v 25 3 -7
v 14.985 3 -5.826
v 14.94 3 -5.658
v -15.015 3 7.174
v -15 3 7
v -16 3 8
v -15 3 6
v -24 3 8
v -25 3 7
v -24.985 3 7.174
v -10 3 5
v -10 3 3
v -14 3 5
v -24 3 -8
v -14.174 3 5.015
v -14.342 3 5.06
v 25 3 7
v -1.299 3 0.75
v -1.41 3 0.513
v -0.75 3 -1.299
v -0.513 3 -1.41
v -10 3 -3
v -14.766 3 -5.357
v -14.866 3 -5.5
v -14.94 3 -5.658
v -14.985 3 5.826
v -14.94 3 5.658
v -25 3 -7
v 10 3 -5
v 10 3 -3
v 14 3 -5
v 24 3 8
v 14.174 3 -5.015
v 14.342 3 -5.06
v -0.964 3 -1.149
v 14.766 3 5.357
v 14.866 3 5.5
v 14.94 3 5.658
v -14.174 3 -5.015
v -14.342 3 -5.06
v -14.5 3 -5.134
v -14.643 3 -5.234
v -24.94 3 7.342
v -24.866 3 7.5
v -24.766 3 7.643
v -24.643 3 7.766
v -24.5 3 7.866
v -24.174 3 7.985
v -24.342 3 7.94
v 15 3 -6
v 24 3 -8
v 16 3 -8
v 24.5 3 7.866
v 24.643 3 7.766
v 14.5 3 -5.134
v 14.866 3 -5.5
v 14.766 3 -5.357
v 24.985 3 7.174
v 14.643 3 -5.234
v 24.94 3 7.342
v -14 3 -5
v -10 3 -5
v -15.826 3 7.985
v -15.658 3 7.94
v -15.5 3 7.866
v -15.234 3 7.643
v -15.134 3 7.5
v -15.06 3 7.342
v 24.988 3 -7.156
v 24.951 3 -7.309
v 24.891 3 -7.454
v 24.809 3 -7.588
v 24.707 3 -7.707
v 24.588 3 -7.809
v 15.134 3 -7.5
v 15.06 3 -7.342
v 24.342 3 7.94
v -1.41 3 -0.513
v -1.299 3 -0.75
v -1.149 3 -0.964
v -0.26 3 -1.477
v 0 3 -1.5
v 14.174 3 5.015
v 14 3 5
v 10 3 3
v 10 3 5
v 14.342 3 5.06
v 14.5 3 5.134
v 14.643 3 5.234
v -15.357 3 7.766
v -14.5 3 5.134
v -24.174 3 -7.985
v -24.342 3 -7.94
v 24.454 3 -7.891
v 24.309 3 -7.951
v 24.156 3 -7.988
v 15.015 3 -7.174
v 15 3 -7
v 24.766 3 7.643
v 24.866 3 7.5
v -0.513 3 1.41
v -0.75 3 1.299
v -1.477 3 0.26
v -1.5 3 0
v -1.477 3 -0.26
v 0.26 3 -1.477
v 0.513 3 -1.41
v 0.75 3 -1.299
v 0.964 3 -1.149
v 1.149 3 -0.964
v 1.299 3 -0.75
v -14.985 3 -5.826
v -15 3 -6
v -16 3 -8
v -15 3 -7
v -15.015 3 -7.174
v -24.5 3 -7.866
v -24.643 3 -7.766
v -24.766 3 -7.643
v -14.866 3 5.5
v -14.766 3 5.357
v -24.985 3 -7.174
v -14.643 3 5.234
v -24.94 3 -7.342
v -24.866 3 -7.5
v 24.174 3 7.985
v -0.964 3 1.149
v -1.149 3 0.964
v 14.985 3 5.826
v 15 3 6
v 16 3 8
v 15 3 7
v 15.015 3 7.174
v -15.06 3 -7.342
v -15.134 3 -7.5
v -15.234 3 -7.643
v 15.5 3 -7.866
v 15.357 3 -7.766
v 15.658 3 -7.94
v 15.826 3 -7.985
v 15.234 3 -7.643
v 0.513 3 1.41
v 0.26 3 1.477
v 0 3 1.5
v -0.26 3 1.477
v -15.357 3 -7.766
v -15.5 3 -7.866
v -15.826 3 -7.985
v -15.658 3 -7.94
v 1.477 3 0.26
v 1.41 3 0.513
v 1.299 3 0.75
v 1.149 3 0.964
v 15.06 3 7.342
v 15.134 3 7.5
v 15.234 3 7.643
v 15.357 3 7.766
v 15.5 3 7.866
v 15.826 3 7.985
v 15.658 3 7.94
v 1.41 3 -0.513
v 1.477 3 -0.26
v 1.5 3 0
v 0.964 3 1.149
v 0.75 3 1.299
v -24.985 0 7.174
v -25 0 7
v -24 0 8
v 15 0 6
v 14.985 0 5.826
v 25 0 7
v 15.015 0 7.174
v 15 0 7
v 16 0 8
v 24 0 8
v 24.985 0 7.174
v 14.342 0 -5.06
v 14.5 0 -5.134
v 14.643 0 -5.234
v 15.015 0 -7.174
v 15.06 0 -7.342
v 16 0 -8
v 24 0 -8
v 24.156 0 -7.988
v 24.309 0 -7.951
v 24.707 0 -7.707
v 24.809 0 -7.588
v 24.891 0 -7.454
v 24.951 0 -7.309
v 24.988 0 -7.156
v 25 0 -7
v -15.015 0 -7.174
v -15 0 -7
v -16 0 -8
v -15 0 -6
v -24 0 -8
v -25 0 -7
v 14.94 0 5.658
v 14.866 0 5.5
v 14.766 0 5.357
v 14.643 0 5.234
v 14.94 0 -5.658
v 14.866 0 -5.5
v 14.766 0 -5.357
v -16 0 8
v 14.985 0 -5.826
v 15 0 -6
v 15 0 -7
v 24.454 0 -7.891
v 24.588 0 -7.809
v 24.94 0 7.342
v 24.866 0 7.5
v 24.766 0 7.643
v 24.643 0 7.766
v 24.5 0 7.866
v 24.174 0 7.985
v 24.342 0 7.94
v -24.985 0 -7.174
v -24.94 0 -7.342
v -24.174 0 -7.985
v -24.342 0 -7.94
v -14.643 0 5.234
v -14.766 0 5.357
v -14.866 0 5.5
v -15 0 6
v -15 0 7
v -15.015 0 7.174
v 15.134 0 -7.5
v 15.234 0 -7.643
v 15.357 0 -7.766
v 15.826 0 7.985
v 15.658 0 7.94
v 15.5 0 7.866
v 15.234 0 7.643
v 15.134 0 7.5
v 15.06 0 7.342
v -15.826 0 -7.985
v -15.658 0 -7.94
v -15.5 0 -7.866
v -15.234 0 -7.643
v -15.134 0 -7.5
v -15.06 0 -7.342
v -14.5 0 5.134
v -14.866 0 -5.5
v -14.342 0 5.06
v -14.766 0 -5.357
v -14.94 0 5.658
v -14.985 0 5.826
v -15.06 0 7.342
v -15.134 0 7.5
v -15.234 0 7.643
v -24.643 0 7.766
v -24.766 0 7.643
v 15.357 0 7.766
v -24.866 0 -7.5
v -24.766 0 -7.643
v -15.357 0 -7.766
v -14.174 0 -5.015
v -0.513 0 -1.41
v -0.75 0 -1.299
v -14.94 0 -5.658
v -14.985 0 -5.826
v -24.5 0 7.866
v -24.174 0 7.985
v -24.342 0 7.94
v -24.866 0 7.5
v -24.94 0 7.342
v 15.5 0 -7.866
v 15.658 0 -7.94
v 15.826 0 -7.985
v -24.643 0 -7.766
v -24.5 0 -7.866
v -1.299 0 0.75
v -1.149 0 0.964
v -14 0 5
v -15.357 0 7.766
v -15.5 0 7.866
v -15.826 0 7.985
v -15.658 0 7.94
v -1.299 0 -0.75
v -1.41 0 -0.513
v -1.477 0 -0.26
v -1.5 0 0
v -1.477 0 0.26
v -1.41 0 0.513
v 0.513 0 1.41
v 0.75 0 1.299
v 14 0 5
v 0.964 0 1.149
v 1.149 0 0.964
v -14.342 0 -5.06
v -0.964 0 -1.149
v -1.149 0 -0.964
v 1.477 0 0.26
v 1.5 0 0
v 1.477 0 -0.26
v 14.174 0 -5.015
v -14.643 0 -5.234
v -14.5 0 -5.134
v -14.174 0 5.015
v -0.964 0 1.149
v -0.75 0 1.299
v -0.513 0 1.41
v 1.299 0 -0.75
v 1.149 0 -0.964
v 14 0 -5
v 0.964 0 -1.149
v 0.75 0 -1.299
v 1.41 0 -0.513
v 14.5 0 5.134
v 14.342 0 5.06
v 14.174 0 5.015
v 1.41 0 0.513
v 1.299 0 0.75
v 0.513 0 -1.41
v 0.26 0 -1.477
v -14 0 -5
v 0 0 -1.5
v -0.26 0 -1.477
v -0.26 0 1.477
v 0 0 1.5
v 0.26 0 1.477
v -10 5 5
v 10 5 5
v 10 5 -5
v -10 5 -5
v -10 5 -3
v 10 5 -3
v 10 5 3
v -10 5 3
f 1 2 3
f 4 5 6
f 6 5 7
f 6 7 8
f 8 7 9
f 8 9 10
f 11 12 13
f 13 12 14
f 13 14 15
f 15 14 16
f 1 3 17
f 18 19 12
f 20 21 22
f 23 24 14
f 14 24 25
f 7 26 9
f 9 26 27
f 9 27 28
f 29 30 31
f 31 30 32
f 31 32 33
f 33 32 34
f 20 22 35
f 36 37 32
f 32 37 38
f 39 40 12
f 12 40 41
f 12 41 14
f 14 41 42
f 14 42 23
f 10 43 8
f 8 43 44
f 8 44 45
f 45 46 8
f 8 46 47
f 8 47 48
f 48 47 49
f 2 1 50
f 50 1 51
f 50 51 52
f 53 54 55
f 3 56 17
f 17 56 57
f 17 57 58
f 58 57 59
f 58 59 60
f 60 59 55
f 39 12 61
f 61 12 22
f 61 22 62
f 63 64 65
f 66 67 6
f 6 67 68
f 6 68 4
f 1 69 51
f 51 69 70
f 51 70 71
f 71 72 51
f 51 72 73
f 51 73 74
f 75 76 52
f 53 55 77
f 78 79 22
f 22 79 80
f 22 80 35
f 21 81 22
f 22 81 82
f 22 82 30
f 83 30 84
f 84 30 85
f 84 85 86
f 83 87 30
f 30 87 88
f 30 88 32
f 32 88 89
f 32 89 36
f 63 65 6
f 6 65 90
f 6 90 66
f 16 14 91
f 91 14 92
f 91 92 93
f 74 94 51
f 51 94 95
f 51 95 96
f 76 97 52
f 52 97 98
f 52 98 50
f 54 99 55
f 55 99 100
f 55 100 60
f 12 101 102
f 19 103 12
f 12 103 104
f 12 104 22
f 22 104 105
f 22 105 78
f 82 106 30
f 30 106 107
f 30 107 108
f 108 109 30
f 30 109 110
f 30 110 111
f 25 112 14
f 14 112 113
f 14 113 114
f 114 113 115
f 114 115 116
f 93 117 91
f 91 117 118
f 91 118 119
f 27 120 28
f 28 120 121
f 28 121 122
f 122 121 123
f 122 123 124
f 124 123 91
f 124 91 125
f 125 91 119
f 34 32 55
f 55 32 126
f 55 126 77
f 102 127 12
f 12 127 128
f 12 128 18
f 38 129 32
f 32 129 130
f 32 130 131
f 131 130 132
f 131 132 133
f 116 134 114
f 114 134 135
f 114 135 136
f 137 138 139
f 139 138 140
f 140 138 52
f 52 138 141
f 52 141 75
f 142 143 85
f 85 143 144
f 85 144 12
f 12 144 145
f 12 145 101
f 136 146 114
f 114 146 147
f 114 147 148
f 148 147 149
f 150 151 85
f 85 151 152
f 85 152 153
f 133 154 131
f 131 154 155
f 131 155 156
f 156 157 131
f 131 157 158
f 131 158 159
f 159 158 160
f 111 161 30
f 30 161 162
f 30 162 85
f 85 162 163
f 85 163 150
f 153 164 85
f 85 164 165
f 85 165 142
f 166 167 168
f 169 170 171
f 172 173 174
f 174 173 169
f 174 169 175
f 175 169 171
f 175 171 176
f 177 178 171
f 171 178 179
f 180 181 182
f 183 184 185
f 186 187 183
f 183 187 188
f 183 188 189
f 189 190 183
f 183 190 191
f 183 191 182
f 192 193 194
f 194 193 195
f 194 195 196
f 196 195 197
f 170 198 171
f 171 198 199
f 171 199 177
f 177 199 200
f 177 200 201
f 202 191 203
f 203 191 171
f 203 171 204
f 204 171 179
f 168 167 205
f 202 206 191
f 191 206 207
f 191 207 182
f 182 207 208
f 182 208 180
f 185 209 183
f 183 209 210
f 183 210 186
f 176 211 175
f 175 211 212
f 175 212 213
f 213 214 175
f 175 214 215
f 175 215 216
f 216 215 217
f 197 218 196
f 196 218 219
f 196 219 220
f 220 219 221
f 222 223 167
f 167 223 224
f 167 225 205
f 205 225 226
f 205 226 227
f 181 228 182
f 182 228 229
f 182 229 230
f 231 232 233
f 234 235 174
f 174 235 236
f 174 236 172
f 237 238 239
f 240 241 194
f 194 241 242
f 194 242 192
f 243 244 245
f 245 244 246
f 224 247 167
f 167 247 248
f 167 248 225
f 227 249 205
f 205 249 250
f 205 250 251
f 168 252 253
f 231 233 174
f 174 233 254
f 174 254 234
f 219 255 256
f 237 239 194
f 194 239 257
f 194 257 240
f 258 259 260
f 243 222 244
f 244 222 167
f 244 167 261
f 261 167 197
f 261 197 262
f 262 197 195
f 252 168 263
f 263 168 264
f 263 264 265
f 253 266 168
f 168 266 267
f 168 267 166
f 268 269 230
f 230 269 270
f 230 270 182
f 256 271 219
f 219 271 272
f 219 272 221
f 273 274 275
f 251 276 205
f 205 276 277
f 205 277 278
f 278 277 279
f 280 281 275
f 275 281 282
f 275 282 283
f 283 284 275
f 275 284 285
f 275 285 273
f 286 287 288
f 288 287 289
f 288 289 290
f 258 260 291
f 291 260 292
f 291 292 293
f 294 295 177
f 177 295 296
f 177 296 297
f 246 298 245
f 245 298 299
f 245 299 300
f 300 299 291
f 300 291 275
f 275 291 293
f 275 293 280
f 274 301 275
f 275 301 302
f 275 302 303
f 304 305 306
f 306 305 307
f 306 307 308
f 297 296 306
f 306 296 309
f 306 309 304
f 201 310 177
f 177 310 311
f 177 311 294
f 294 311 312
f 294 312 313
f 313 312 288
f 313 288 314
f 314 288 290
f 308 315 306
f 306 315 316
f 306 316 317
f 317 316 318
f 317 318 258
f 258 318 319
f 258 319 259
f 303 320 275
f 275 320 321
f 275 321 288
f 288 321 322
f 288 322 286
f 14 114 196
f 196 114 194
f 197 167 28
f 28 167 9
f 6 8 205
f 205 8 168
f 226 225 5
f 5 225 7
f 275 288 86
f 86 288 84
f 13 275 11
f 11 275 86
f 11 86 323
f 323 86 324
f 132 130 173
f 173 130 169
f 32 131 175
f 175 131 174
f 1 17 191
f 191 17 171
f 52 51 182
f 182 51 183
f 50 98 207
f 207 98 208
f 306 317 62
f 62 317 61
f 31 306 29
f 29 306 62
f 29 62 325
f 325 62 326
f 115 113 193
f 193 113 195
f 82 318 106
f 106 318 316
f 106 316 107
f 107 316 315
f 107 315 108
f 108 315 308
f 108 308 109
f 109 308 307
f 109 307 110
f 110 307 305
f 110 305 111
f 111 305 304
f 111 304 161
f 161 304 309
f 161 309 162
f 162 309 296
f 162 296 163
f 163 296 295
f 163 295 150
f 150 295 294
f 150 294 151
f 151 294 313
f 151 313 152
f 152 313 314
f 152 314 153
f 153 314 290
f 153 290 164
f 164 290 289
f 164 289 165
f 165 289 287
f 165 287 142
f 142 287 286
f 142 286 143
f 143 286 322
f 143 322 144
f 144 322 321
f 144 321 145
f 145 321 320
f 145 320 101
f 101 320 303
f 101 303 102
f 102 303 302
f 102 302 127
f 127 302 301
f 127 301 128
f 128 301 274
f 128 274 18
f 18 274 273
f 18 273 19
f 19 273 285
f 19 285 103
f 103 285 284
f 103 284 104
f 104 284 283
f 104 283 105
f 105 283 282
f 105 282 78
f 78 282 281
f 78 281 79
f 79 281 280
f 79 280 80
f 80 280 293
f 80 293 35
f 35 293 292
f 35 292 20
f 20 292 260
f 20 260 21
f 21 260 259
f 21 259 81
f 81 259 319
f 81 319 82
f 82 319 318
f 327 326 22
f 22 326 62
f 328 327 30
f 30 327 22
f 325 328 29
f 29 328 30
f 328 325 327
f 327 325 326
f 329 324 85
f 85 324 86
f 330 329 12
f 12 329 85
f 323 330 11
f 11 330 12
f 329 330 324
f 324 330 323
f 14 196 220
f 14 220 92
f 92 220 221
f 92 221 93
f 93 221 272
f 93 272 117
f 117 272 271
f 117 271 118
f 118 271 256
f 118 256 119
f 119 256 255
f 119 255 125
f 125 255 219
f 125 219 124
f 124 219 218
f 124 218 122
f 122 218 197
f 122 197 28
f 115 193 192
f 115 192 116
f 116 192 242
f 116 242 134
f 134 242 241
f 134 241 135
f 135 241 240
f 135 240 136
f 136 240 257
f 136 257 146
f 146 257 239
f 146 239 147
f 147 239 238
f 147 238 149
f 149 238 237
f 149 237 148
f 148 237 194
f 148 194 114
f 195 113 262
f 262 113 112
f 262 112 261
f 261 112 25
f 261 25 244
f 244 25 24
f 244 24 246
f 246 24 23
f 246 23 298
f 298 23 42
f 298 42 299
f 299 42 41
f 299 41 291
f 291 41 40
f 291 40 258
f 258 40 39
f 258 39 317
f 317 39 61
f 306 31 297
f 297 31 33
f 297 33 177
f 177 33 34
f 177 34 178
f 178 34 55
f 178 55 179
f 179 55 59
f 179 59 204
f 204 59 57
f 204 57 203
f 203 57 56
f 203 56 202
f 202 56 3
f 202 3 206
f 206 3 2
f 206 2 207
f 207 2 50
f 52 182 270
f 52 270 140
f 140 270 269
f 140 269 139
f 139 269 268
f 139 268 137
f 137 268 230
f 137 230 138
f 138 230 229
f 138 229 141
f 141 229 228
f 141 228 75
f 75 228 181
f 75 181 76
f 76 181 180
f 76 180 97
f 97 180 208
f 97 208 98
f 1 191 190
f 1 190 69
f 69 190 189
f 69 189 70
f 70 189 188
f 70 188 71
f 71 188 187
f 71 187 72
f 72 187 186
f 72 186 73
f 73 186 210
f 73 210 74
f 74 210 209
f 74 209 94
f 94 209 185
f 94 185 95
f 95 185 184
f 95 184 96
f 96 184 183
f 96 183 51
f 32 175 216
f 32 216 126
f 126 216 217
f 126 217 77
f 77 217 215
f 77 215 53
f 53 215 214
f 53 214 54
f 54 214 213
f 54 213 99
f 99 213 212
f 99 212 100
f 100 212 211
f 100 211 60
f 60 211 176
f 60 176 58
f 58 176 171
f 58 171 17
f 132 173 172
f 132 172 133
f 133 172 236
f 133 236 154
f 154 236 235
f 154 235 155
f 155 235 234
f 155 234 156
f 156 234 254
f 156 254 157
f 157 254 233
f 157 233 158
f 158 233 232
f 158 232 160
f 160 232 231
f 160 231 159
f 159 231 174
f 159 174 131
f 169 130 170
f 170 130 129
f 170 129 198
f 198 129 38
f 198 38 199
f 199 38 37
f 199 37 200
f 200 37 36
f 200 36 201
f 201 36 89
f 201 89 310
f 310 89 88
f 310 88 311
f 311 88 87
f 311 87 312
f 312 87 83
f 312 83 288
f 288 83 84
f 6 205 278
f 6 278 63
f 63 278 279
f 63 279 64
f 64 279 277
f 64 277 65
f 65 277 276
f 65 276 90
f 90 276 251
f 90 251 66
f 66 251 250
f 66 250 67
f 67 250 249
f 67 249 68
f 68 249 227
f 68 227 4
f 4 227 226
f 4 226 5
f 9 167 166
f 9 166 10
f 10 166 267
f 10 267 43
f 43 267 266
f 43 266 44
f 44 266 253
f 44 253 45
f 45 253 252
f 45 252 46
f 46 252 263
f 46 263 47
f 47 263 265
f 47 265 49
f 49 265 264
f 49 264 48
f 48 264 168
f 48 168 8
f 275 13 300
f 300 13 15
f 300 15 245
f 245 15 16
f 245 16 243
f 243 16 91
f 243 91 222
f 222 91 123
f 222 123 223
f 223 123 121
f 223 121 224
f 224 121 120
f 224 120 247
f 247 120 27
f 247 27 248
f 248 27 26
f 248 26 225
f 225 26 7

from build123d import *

# Parameters (mm, degrees)
CROQUIS1_R              = 1.5
SALIENTE_EXTRUIR1_DEPTH = 3
CROQUIS2_W              = 20
CROQUIS2_H              = 2
SALIENTE_EXTRUIR2_DEPTH = 2
REDONDEO1_R             = 1


with BuildPart() as part:
    # Croquis1 → Saliente-Extruir1 (new body)
    with BuildSketch(Plane(origin=(0, 0, 0), x_dir=(1, 0, 0), z_dir=(0, 1, 0))):
        Polygon((-15, -5), (15, -5), (15, -8), (25, -8), (25, 8), (15, 8), (15, 5), (-15, 5), (-15, 8), (-25, 8), (-25, -8), (-15, -8), align=None)
        with Locations(Location((0, 0, 0), (0, 0, 270))):
            Circle(CROQUIS1_R, mode=Mode.SUBTRACT)
    extrude(amount=SALIENTE_EXTRUIR1_DEPTH)

    # Croquis2 → Saliente-Extruir2 (add)
    with BuildSketch(Plane(origin=(0, 3, 0), x_dir=(1, 0, 0), z_dir=(0, 1, 0))):
        with Locations((0, 4)):
            Rectangle(CROQUIS2_W, CROQUIS2_H)
        with Locations((0, -4)):
            Rectangle(CROQUIS2_W, CROQUIS2_H)
    extrude(amount=SALIENTE_EXTRUIR2_DEPTH)

    # Redondeo1
    redondeo1_edges = [part.edges().sort_by_distance(p)[0] for p in [
        (-15, 1.5, -8),
        (-15, 1.5, -5),
        (15, 1.5, -5),
        (15, 1.5, -8),
        (25, 1.5, -8),
        (25, 1.5, 8),
        (15, 1.5, 8),
        (15, 1.5, 5),
        (-15, 1.5, 5),
        (-15, 1.5, 8),
        (-25, 1.5, 8),
        (-25, 1.5, -8),
    ]]
    fillet(redondeo1_edges, radius=REDONDEO1_R)


solid = part.part
